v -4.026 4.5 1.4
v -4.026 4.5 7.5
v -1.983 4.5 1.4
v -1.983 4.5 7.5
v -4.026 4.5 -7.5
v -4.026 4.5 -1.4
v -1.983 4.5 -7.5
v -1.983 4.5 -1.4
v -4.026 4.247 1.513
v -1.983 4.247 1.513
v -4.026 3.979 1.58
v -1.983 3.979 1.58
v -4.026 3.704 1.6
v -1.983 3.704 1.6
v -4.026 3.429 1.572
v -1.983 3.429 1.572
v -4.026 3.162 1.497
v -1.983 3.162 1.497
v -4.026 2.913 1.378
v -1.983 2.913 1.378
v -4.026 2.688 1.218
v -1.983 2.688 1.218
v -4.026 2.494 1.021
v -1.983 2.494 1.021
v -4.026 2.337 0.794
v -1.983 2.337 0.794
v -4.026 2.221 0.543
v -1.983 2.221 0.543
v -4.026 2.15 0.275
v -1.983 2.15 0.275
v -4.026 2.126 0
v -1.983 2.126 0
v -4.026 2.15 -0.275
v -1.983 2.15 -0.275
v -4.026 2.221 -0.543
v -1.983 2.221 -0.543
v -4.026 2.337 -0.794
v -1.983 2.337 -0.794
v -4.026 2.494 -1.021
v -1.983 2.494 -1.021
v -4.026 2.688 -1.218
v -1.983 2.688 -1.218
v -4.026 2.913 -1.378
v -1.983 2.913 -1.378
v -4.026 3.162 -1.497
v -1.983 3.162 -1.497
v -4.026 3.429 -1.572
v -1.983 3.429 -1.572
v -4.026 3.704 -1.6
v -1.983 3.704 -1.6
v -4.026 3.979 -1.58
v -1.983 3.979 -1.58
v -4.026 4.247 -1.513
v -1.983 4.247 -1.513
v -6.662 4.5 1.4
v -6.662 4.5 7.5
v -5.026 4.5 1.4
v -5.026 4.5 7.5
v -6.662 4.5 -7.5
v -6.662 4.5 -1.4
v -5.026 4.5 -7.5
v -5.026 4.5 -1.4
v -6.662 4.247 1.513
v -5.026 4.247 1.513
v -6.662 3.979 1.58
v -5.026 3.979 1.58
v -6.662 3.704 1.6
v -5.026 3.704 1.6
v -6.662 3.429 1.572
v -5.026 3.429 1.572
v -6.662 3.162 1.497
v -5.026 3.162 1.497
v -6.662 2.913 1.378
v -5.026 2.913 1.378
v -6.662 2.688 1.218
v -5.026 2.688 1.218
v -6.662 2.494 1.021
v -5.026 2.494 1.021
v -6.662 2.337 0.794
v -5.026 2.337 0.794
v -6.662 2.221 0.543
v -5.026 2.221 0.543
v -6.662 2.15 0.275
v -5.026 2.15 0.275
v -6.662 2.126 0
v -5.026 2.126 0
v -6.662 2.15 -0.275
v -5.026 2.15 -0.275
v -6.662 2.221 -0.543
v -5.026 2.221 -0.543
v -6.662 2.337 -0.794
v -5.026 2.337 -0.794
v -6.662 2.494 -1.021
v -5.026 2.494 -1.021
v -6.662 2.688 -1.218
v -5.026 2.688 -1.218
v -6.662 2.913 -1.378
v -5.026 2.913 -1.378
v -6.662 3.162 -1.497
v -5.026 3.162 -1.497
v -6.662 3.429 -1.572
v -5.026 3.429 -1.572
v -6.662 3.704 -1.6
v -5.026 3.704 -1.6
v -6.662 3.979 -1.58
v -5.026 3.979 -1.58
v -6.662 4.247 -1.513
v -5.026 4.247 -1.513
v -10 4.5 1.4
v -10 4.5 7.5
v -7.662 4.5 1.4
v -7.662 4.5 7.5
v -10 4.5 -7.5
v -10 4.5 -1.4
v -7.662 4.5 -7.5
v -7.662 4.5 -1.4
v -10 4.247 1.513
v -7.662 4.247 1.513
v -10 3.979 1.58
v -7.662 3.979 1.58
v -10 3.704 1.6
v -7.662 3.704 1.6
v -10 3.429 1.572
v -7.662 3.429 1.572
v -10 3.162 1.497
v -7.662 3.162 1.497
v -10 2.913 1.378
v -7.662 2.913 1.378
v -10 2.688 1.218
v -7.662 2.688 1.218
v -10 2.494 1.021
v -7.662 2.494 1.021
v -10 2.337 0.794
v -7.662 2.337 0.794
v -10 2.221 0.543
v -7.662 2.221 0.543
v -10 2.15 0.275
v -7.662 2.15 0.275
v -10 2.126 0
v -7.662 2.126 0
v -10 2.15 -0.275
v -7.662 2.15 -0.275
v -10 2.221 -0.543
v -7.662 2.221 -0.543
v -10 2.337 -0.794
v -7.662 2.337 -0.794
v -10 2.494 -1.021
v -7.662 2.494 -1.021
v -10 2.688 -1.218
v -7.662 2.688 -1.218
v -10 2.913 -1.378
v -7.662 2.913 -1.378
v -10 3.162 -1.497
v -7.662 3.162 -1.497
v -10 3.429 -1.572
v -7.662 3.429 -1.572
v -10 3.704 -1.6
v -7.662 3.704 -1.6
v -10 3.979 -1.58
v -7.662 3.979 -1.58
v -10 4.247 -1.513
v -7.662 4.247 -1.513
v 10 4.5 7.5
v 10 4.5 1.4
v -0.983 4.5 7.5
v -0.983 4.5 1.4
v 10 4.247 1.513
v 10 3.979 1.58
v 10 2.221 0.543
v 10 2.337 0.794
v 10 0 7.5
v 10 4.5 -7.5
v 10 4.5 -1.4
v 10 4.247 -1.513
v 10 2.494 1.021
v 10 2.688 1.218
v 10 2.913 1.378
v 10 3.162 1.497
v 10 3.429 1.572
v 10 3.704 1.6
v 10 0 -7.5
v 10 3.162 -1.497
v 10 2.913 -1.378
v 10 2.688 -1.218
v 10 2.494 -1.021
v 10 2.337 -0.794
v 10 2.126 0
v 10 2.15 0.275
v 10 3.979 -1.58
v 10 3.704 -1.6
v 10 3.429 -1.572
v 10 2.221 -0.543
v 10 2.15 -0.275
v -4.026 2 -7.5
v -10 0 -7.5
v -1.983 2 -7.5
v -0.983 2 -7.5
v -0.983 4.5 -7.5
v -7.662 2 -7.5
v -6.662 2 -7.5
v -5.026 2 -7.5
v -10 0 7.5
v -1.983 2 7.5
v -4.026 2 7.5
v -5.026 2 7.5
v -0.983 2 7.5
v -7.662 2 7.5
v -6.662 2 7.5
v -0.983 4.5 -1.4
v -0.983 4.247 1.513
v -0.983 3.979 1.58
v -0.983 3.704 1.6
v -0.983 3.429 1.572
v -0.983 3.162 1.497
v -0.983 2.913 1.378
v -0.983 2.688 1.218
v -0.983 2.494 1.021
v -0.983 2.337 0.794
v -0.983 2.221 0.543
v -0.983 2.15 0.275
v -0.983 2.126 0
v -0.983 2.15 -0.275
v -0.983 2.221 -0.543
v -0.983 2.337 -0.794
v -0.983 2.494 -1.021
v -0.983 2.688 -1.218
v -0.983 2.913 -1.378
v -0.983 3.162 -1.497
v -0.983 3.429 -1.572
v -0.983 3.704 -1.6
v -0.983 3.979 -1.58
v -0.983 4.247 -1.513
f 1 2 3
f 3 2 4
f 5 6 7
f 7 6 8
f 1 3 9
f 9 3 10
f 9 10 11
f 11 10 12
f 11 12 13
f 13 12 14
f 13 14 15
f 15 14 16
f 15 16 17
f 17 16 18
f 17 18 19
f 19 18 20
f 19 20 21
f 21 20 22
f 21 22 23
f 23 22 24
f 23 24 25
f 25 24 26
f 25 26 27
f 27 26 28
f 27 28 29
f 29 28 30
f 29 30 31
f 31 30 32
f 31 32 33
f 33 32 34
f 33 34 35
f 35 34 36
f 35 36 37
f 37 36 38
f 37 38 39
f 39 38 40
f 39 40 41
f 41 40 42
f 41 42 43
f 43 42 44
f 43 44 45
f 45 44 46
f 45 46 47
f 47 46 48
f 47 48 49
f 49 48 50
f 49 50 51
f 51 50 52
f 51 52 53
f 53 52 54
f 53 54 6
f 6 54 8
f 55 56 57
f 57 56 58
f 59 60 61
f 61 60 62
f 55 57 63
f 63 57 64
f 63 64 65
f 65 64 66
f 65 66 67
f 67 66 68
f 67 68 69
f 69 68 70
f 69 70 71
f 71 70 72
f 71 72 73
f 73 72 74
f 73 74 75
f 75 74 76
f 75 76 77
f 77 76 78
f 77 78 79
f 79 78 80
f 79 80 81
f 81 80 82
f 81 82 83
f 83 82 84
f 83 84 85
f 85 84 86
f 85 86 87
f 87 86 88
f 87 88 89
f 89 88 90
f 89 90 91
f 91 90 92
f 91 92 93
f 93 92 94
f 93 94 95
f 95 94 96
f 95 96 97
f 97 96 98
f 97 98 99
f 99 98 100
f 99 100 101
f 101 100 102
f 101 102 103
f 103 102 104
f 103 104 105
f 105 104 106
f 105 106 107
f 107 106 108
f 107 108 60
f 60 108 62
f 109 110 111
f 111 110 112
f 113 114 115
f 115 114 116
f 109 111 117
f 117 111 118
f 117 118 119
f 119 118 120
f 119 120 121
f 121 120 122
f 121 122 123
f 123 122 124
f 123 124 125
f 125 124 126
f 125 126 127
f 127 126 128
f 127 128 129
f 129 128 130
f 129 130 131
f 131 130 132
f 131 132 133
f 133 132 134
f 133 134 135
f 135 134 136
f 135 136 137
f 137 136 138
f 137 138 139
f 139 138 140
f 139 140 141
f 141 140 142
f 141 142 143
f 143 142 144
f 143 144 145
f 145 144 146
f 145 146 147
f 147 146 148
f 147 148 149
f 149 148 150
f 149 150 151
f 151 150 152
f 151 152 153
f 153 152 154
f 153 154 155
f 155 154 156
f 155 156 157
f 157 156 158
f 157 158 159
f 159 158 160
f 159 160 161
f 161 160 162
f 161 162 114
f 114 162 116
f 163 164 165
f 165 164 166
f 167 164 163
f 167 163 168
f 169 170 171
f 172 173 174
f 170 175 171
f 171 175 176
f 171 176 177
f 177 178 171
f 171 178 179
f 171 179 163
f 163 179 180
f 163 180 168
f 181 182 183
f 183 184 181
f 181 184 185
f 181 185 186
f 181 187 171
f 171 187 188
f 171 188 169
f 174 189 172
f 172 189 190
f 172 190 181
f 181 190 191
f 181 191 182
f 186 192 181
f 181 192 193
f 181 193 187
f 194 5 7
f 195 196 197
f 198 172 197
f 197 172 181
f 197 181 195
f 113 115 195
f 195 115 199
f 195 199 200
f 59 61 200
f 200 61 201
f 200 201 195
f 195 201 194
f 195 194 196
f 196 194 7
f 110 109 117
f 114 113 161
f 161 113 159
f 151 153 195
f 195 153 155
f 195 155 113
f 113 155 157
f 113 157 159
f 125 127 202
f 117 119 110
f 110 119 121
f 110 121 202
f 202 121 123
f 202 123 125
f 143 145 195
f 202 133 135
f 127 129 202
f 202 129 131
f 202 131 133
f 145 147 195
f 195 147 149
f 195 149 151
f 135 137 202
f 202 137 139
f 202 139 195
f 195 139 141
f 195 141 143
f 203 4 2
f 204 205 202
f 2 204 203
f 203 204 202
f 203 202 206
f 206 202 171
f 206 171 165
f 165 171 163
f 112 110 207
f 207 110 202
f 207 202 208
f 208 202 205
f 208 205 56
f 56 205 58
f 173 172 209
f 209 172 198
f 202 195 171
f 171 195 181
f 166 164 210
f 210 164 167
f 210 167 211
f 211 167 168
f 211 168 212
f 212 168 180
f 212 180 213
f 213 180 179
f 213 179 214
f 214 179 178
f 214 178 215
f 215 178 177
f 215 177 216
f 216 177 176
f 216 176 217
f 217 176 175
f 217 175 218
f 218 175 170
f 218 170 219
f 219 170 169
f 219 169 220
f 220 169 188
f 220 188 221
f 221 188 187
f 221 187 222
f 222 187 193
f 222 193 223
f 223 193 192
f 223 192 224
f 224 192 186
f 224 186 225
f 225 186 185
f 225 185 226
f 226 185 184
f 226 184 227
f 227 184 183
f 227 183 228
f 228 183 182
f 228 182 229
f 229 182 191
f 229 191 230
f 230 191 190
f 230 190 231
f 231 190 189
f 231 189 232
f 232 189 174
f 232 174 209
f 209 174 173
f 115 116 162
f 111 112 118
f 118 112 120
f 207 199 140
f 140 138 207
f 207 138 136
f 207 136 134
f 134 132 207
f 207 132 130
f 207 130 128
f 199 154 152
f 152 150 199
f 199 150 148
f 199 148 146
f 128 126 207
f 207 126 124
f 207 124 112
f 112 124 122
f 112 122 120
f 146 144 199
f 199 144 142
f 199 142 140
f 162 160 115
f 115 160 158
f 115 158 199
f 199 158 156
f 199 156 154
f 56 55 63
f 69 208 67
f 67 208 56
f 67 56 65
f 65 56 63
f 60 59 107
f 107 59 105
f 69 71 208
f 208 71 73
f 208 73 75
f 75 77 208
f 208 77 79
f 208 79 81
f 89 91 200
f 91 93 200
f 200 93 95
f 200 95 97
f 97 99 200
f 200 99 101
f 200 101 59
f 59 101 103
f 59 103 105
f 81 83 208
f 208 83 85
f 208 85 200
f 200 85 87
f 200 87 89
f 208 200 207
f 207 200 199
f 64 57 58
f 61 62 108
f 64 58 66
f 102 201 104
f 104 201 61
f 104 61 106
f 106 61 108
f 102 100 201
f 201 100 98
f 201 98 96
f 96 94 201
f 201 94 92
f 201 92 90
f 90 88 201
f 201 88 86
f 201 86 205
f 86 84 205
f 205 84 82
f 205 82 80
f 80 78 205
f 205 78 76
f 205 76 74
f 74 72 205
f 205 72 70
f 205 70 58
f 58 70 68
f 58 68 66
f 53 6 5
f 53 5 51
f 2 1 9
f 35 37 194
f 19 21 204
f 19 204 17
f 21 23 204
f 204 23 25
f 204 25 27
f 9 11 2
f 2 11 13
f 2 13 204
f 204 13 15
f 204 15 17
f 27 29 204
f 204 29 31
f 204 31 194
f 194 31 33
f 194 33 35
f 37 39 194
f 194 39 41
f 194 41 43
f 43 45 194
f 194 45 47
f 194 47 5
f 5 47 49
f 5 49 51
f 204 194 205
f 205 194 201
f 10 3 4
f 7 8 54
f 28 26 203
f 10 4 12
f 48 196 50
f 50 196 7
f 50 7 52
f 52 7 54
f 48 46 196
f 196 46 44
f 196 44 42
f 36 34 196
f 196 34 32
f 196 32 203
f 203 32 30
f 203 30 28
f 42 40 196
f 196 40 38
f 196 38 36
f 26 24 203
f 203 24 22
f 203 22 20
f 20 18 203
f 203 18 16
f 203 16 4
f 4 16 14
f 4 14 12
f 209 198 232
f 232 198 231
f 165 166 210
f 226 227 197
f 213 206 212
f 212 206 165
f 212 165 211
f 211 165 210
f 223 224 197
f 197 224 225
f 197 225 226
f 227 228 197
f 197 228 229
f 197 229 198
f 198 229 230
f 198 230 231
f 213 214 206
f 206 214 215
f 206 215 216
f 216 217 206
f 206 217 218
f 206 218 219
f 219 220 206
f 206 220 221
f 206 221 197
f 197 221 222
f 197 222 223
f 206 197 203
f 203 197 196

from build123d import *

# Parameters (mm, degrees)
SKETCH1_W           = 20
SKETCH1_H           = 15
BOSS_EXTRUDE1_DEPTH = 4.5
SKETCH3_R           = 1.6
CUT_EXTRUDE1_DEPTH  = 20
SKETCH4_W           = 1
SKETCH4_H           = 15
CUT_EXTRUDE2_DEPTH  = 2.5
SKETCH5_W           = 1
SKETCH5_H           = 15
CUT_EXTRUDE3_DEPTH  = 2.5
SKETCH6_W           = 1
SKETCH6_H           = 15
CUT_EXTRUDE5_DEPTH  = 2.5


with BuildPart() as part:
    # Sketch1 → Boss-Extrude1 (new body)
    with BuildSketch(Plane(origin=(0, 0, 0), x_dir=(1, 0, 0), z_dir=(0, 1, 0))):
        Rectangle(SKETCH1_W, SKETCH1_H)
    extrude(amount=BOSS_EXTRUDE1_DEPTH)

    # Sketch3 → Cut-Extrude1 (cut)
    with BuildSketch(Plane(origin=(10, 0, 0), x_dir=(0, 0, -1), z_dir=(1, 0, 0))):
        with Locations((0, 3.72608181)):
            Circle(SKETCH3_R)
    extrude(amount=-CUT_EXTRUDE1_DEPTH, mode=Mode.SUBTRACT)

    # Sketch4 → Cut-Extrude2 (cut)
    with BuildSketch(Plane(origin=(0, 4.5, 0), x_dir=(1, 0, 0), z_dir=(0, 1, 0))):
        with Locations((-7.162357261, 0)):
            Rectangle(SKETCH4_W, SKETCH4_H)
    extrude(amount=-CUT_EXTRUDE2_DEPTH, mode=Mode.SUBTRACT)

    # Sketch5 → Cut-Extrude3 (cut)
    with BuildSketch(Plane(origin=(0, 4.5, 0), x_dir=(1, 0, 0), z_dir=(0, 1, 0))):
        with Locations((-4.526212298, 0)):
            Rectangle(SKETCH5_W, SKETCH5_H)
    extrude(amount=-CUT_EXTRUDE3_DEPTH, mode=Mode.SUBTRACT)

    # Sketch6 → Cut-Extrude5 (cut)
    with BuildSketch(Plane(origin=(0, 4.5, 0), x_dir=(1, 0, 0), z_dir=(0, 1, 0))):
        with Locations((-1.483369352, 0)):
            Rectangle(SKETCH6_W, SKETCH6_H)
    extrude(amount=-CUT_EXTRUDE5_DEPTH, mode=Mode.SUBTRACT)


solid = part.part
